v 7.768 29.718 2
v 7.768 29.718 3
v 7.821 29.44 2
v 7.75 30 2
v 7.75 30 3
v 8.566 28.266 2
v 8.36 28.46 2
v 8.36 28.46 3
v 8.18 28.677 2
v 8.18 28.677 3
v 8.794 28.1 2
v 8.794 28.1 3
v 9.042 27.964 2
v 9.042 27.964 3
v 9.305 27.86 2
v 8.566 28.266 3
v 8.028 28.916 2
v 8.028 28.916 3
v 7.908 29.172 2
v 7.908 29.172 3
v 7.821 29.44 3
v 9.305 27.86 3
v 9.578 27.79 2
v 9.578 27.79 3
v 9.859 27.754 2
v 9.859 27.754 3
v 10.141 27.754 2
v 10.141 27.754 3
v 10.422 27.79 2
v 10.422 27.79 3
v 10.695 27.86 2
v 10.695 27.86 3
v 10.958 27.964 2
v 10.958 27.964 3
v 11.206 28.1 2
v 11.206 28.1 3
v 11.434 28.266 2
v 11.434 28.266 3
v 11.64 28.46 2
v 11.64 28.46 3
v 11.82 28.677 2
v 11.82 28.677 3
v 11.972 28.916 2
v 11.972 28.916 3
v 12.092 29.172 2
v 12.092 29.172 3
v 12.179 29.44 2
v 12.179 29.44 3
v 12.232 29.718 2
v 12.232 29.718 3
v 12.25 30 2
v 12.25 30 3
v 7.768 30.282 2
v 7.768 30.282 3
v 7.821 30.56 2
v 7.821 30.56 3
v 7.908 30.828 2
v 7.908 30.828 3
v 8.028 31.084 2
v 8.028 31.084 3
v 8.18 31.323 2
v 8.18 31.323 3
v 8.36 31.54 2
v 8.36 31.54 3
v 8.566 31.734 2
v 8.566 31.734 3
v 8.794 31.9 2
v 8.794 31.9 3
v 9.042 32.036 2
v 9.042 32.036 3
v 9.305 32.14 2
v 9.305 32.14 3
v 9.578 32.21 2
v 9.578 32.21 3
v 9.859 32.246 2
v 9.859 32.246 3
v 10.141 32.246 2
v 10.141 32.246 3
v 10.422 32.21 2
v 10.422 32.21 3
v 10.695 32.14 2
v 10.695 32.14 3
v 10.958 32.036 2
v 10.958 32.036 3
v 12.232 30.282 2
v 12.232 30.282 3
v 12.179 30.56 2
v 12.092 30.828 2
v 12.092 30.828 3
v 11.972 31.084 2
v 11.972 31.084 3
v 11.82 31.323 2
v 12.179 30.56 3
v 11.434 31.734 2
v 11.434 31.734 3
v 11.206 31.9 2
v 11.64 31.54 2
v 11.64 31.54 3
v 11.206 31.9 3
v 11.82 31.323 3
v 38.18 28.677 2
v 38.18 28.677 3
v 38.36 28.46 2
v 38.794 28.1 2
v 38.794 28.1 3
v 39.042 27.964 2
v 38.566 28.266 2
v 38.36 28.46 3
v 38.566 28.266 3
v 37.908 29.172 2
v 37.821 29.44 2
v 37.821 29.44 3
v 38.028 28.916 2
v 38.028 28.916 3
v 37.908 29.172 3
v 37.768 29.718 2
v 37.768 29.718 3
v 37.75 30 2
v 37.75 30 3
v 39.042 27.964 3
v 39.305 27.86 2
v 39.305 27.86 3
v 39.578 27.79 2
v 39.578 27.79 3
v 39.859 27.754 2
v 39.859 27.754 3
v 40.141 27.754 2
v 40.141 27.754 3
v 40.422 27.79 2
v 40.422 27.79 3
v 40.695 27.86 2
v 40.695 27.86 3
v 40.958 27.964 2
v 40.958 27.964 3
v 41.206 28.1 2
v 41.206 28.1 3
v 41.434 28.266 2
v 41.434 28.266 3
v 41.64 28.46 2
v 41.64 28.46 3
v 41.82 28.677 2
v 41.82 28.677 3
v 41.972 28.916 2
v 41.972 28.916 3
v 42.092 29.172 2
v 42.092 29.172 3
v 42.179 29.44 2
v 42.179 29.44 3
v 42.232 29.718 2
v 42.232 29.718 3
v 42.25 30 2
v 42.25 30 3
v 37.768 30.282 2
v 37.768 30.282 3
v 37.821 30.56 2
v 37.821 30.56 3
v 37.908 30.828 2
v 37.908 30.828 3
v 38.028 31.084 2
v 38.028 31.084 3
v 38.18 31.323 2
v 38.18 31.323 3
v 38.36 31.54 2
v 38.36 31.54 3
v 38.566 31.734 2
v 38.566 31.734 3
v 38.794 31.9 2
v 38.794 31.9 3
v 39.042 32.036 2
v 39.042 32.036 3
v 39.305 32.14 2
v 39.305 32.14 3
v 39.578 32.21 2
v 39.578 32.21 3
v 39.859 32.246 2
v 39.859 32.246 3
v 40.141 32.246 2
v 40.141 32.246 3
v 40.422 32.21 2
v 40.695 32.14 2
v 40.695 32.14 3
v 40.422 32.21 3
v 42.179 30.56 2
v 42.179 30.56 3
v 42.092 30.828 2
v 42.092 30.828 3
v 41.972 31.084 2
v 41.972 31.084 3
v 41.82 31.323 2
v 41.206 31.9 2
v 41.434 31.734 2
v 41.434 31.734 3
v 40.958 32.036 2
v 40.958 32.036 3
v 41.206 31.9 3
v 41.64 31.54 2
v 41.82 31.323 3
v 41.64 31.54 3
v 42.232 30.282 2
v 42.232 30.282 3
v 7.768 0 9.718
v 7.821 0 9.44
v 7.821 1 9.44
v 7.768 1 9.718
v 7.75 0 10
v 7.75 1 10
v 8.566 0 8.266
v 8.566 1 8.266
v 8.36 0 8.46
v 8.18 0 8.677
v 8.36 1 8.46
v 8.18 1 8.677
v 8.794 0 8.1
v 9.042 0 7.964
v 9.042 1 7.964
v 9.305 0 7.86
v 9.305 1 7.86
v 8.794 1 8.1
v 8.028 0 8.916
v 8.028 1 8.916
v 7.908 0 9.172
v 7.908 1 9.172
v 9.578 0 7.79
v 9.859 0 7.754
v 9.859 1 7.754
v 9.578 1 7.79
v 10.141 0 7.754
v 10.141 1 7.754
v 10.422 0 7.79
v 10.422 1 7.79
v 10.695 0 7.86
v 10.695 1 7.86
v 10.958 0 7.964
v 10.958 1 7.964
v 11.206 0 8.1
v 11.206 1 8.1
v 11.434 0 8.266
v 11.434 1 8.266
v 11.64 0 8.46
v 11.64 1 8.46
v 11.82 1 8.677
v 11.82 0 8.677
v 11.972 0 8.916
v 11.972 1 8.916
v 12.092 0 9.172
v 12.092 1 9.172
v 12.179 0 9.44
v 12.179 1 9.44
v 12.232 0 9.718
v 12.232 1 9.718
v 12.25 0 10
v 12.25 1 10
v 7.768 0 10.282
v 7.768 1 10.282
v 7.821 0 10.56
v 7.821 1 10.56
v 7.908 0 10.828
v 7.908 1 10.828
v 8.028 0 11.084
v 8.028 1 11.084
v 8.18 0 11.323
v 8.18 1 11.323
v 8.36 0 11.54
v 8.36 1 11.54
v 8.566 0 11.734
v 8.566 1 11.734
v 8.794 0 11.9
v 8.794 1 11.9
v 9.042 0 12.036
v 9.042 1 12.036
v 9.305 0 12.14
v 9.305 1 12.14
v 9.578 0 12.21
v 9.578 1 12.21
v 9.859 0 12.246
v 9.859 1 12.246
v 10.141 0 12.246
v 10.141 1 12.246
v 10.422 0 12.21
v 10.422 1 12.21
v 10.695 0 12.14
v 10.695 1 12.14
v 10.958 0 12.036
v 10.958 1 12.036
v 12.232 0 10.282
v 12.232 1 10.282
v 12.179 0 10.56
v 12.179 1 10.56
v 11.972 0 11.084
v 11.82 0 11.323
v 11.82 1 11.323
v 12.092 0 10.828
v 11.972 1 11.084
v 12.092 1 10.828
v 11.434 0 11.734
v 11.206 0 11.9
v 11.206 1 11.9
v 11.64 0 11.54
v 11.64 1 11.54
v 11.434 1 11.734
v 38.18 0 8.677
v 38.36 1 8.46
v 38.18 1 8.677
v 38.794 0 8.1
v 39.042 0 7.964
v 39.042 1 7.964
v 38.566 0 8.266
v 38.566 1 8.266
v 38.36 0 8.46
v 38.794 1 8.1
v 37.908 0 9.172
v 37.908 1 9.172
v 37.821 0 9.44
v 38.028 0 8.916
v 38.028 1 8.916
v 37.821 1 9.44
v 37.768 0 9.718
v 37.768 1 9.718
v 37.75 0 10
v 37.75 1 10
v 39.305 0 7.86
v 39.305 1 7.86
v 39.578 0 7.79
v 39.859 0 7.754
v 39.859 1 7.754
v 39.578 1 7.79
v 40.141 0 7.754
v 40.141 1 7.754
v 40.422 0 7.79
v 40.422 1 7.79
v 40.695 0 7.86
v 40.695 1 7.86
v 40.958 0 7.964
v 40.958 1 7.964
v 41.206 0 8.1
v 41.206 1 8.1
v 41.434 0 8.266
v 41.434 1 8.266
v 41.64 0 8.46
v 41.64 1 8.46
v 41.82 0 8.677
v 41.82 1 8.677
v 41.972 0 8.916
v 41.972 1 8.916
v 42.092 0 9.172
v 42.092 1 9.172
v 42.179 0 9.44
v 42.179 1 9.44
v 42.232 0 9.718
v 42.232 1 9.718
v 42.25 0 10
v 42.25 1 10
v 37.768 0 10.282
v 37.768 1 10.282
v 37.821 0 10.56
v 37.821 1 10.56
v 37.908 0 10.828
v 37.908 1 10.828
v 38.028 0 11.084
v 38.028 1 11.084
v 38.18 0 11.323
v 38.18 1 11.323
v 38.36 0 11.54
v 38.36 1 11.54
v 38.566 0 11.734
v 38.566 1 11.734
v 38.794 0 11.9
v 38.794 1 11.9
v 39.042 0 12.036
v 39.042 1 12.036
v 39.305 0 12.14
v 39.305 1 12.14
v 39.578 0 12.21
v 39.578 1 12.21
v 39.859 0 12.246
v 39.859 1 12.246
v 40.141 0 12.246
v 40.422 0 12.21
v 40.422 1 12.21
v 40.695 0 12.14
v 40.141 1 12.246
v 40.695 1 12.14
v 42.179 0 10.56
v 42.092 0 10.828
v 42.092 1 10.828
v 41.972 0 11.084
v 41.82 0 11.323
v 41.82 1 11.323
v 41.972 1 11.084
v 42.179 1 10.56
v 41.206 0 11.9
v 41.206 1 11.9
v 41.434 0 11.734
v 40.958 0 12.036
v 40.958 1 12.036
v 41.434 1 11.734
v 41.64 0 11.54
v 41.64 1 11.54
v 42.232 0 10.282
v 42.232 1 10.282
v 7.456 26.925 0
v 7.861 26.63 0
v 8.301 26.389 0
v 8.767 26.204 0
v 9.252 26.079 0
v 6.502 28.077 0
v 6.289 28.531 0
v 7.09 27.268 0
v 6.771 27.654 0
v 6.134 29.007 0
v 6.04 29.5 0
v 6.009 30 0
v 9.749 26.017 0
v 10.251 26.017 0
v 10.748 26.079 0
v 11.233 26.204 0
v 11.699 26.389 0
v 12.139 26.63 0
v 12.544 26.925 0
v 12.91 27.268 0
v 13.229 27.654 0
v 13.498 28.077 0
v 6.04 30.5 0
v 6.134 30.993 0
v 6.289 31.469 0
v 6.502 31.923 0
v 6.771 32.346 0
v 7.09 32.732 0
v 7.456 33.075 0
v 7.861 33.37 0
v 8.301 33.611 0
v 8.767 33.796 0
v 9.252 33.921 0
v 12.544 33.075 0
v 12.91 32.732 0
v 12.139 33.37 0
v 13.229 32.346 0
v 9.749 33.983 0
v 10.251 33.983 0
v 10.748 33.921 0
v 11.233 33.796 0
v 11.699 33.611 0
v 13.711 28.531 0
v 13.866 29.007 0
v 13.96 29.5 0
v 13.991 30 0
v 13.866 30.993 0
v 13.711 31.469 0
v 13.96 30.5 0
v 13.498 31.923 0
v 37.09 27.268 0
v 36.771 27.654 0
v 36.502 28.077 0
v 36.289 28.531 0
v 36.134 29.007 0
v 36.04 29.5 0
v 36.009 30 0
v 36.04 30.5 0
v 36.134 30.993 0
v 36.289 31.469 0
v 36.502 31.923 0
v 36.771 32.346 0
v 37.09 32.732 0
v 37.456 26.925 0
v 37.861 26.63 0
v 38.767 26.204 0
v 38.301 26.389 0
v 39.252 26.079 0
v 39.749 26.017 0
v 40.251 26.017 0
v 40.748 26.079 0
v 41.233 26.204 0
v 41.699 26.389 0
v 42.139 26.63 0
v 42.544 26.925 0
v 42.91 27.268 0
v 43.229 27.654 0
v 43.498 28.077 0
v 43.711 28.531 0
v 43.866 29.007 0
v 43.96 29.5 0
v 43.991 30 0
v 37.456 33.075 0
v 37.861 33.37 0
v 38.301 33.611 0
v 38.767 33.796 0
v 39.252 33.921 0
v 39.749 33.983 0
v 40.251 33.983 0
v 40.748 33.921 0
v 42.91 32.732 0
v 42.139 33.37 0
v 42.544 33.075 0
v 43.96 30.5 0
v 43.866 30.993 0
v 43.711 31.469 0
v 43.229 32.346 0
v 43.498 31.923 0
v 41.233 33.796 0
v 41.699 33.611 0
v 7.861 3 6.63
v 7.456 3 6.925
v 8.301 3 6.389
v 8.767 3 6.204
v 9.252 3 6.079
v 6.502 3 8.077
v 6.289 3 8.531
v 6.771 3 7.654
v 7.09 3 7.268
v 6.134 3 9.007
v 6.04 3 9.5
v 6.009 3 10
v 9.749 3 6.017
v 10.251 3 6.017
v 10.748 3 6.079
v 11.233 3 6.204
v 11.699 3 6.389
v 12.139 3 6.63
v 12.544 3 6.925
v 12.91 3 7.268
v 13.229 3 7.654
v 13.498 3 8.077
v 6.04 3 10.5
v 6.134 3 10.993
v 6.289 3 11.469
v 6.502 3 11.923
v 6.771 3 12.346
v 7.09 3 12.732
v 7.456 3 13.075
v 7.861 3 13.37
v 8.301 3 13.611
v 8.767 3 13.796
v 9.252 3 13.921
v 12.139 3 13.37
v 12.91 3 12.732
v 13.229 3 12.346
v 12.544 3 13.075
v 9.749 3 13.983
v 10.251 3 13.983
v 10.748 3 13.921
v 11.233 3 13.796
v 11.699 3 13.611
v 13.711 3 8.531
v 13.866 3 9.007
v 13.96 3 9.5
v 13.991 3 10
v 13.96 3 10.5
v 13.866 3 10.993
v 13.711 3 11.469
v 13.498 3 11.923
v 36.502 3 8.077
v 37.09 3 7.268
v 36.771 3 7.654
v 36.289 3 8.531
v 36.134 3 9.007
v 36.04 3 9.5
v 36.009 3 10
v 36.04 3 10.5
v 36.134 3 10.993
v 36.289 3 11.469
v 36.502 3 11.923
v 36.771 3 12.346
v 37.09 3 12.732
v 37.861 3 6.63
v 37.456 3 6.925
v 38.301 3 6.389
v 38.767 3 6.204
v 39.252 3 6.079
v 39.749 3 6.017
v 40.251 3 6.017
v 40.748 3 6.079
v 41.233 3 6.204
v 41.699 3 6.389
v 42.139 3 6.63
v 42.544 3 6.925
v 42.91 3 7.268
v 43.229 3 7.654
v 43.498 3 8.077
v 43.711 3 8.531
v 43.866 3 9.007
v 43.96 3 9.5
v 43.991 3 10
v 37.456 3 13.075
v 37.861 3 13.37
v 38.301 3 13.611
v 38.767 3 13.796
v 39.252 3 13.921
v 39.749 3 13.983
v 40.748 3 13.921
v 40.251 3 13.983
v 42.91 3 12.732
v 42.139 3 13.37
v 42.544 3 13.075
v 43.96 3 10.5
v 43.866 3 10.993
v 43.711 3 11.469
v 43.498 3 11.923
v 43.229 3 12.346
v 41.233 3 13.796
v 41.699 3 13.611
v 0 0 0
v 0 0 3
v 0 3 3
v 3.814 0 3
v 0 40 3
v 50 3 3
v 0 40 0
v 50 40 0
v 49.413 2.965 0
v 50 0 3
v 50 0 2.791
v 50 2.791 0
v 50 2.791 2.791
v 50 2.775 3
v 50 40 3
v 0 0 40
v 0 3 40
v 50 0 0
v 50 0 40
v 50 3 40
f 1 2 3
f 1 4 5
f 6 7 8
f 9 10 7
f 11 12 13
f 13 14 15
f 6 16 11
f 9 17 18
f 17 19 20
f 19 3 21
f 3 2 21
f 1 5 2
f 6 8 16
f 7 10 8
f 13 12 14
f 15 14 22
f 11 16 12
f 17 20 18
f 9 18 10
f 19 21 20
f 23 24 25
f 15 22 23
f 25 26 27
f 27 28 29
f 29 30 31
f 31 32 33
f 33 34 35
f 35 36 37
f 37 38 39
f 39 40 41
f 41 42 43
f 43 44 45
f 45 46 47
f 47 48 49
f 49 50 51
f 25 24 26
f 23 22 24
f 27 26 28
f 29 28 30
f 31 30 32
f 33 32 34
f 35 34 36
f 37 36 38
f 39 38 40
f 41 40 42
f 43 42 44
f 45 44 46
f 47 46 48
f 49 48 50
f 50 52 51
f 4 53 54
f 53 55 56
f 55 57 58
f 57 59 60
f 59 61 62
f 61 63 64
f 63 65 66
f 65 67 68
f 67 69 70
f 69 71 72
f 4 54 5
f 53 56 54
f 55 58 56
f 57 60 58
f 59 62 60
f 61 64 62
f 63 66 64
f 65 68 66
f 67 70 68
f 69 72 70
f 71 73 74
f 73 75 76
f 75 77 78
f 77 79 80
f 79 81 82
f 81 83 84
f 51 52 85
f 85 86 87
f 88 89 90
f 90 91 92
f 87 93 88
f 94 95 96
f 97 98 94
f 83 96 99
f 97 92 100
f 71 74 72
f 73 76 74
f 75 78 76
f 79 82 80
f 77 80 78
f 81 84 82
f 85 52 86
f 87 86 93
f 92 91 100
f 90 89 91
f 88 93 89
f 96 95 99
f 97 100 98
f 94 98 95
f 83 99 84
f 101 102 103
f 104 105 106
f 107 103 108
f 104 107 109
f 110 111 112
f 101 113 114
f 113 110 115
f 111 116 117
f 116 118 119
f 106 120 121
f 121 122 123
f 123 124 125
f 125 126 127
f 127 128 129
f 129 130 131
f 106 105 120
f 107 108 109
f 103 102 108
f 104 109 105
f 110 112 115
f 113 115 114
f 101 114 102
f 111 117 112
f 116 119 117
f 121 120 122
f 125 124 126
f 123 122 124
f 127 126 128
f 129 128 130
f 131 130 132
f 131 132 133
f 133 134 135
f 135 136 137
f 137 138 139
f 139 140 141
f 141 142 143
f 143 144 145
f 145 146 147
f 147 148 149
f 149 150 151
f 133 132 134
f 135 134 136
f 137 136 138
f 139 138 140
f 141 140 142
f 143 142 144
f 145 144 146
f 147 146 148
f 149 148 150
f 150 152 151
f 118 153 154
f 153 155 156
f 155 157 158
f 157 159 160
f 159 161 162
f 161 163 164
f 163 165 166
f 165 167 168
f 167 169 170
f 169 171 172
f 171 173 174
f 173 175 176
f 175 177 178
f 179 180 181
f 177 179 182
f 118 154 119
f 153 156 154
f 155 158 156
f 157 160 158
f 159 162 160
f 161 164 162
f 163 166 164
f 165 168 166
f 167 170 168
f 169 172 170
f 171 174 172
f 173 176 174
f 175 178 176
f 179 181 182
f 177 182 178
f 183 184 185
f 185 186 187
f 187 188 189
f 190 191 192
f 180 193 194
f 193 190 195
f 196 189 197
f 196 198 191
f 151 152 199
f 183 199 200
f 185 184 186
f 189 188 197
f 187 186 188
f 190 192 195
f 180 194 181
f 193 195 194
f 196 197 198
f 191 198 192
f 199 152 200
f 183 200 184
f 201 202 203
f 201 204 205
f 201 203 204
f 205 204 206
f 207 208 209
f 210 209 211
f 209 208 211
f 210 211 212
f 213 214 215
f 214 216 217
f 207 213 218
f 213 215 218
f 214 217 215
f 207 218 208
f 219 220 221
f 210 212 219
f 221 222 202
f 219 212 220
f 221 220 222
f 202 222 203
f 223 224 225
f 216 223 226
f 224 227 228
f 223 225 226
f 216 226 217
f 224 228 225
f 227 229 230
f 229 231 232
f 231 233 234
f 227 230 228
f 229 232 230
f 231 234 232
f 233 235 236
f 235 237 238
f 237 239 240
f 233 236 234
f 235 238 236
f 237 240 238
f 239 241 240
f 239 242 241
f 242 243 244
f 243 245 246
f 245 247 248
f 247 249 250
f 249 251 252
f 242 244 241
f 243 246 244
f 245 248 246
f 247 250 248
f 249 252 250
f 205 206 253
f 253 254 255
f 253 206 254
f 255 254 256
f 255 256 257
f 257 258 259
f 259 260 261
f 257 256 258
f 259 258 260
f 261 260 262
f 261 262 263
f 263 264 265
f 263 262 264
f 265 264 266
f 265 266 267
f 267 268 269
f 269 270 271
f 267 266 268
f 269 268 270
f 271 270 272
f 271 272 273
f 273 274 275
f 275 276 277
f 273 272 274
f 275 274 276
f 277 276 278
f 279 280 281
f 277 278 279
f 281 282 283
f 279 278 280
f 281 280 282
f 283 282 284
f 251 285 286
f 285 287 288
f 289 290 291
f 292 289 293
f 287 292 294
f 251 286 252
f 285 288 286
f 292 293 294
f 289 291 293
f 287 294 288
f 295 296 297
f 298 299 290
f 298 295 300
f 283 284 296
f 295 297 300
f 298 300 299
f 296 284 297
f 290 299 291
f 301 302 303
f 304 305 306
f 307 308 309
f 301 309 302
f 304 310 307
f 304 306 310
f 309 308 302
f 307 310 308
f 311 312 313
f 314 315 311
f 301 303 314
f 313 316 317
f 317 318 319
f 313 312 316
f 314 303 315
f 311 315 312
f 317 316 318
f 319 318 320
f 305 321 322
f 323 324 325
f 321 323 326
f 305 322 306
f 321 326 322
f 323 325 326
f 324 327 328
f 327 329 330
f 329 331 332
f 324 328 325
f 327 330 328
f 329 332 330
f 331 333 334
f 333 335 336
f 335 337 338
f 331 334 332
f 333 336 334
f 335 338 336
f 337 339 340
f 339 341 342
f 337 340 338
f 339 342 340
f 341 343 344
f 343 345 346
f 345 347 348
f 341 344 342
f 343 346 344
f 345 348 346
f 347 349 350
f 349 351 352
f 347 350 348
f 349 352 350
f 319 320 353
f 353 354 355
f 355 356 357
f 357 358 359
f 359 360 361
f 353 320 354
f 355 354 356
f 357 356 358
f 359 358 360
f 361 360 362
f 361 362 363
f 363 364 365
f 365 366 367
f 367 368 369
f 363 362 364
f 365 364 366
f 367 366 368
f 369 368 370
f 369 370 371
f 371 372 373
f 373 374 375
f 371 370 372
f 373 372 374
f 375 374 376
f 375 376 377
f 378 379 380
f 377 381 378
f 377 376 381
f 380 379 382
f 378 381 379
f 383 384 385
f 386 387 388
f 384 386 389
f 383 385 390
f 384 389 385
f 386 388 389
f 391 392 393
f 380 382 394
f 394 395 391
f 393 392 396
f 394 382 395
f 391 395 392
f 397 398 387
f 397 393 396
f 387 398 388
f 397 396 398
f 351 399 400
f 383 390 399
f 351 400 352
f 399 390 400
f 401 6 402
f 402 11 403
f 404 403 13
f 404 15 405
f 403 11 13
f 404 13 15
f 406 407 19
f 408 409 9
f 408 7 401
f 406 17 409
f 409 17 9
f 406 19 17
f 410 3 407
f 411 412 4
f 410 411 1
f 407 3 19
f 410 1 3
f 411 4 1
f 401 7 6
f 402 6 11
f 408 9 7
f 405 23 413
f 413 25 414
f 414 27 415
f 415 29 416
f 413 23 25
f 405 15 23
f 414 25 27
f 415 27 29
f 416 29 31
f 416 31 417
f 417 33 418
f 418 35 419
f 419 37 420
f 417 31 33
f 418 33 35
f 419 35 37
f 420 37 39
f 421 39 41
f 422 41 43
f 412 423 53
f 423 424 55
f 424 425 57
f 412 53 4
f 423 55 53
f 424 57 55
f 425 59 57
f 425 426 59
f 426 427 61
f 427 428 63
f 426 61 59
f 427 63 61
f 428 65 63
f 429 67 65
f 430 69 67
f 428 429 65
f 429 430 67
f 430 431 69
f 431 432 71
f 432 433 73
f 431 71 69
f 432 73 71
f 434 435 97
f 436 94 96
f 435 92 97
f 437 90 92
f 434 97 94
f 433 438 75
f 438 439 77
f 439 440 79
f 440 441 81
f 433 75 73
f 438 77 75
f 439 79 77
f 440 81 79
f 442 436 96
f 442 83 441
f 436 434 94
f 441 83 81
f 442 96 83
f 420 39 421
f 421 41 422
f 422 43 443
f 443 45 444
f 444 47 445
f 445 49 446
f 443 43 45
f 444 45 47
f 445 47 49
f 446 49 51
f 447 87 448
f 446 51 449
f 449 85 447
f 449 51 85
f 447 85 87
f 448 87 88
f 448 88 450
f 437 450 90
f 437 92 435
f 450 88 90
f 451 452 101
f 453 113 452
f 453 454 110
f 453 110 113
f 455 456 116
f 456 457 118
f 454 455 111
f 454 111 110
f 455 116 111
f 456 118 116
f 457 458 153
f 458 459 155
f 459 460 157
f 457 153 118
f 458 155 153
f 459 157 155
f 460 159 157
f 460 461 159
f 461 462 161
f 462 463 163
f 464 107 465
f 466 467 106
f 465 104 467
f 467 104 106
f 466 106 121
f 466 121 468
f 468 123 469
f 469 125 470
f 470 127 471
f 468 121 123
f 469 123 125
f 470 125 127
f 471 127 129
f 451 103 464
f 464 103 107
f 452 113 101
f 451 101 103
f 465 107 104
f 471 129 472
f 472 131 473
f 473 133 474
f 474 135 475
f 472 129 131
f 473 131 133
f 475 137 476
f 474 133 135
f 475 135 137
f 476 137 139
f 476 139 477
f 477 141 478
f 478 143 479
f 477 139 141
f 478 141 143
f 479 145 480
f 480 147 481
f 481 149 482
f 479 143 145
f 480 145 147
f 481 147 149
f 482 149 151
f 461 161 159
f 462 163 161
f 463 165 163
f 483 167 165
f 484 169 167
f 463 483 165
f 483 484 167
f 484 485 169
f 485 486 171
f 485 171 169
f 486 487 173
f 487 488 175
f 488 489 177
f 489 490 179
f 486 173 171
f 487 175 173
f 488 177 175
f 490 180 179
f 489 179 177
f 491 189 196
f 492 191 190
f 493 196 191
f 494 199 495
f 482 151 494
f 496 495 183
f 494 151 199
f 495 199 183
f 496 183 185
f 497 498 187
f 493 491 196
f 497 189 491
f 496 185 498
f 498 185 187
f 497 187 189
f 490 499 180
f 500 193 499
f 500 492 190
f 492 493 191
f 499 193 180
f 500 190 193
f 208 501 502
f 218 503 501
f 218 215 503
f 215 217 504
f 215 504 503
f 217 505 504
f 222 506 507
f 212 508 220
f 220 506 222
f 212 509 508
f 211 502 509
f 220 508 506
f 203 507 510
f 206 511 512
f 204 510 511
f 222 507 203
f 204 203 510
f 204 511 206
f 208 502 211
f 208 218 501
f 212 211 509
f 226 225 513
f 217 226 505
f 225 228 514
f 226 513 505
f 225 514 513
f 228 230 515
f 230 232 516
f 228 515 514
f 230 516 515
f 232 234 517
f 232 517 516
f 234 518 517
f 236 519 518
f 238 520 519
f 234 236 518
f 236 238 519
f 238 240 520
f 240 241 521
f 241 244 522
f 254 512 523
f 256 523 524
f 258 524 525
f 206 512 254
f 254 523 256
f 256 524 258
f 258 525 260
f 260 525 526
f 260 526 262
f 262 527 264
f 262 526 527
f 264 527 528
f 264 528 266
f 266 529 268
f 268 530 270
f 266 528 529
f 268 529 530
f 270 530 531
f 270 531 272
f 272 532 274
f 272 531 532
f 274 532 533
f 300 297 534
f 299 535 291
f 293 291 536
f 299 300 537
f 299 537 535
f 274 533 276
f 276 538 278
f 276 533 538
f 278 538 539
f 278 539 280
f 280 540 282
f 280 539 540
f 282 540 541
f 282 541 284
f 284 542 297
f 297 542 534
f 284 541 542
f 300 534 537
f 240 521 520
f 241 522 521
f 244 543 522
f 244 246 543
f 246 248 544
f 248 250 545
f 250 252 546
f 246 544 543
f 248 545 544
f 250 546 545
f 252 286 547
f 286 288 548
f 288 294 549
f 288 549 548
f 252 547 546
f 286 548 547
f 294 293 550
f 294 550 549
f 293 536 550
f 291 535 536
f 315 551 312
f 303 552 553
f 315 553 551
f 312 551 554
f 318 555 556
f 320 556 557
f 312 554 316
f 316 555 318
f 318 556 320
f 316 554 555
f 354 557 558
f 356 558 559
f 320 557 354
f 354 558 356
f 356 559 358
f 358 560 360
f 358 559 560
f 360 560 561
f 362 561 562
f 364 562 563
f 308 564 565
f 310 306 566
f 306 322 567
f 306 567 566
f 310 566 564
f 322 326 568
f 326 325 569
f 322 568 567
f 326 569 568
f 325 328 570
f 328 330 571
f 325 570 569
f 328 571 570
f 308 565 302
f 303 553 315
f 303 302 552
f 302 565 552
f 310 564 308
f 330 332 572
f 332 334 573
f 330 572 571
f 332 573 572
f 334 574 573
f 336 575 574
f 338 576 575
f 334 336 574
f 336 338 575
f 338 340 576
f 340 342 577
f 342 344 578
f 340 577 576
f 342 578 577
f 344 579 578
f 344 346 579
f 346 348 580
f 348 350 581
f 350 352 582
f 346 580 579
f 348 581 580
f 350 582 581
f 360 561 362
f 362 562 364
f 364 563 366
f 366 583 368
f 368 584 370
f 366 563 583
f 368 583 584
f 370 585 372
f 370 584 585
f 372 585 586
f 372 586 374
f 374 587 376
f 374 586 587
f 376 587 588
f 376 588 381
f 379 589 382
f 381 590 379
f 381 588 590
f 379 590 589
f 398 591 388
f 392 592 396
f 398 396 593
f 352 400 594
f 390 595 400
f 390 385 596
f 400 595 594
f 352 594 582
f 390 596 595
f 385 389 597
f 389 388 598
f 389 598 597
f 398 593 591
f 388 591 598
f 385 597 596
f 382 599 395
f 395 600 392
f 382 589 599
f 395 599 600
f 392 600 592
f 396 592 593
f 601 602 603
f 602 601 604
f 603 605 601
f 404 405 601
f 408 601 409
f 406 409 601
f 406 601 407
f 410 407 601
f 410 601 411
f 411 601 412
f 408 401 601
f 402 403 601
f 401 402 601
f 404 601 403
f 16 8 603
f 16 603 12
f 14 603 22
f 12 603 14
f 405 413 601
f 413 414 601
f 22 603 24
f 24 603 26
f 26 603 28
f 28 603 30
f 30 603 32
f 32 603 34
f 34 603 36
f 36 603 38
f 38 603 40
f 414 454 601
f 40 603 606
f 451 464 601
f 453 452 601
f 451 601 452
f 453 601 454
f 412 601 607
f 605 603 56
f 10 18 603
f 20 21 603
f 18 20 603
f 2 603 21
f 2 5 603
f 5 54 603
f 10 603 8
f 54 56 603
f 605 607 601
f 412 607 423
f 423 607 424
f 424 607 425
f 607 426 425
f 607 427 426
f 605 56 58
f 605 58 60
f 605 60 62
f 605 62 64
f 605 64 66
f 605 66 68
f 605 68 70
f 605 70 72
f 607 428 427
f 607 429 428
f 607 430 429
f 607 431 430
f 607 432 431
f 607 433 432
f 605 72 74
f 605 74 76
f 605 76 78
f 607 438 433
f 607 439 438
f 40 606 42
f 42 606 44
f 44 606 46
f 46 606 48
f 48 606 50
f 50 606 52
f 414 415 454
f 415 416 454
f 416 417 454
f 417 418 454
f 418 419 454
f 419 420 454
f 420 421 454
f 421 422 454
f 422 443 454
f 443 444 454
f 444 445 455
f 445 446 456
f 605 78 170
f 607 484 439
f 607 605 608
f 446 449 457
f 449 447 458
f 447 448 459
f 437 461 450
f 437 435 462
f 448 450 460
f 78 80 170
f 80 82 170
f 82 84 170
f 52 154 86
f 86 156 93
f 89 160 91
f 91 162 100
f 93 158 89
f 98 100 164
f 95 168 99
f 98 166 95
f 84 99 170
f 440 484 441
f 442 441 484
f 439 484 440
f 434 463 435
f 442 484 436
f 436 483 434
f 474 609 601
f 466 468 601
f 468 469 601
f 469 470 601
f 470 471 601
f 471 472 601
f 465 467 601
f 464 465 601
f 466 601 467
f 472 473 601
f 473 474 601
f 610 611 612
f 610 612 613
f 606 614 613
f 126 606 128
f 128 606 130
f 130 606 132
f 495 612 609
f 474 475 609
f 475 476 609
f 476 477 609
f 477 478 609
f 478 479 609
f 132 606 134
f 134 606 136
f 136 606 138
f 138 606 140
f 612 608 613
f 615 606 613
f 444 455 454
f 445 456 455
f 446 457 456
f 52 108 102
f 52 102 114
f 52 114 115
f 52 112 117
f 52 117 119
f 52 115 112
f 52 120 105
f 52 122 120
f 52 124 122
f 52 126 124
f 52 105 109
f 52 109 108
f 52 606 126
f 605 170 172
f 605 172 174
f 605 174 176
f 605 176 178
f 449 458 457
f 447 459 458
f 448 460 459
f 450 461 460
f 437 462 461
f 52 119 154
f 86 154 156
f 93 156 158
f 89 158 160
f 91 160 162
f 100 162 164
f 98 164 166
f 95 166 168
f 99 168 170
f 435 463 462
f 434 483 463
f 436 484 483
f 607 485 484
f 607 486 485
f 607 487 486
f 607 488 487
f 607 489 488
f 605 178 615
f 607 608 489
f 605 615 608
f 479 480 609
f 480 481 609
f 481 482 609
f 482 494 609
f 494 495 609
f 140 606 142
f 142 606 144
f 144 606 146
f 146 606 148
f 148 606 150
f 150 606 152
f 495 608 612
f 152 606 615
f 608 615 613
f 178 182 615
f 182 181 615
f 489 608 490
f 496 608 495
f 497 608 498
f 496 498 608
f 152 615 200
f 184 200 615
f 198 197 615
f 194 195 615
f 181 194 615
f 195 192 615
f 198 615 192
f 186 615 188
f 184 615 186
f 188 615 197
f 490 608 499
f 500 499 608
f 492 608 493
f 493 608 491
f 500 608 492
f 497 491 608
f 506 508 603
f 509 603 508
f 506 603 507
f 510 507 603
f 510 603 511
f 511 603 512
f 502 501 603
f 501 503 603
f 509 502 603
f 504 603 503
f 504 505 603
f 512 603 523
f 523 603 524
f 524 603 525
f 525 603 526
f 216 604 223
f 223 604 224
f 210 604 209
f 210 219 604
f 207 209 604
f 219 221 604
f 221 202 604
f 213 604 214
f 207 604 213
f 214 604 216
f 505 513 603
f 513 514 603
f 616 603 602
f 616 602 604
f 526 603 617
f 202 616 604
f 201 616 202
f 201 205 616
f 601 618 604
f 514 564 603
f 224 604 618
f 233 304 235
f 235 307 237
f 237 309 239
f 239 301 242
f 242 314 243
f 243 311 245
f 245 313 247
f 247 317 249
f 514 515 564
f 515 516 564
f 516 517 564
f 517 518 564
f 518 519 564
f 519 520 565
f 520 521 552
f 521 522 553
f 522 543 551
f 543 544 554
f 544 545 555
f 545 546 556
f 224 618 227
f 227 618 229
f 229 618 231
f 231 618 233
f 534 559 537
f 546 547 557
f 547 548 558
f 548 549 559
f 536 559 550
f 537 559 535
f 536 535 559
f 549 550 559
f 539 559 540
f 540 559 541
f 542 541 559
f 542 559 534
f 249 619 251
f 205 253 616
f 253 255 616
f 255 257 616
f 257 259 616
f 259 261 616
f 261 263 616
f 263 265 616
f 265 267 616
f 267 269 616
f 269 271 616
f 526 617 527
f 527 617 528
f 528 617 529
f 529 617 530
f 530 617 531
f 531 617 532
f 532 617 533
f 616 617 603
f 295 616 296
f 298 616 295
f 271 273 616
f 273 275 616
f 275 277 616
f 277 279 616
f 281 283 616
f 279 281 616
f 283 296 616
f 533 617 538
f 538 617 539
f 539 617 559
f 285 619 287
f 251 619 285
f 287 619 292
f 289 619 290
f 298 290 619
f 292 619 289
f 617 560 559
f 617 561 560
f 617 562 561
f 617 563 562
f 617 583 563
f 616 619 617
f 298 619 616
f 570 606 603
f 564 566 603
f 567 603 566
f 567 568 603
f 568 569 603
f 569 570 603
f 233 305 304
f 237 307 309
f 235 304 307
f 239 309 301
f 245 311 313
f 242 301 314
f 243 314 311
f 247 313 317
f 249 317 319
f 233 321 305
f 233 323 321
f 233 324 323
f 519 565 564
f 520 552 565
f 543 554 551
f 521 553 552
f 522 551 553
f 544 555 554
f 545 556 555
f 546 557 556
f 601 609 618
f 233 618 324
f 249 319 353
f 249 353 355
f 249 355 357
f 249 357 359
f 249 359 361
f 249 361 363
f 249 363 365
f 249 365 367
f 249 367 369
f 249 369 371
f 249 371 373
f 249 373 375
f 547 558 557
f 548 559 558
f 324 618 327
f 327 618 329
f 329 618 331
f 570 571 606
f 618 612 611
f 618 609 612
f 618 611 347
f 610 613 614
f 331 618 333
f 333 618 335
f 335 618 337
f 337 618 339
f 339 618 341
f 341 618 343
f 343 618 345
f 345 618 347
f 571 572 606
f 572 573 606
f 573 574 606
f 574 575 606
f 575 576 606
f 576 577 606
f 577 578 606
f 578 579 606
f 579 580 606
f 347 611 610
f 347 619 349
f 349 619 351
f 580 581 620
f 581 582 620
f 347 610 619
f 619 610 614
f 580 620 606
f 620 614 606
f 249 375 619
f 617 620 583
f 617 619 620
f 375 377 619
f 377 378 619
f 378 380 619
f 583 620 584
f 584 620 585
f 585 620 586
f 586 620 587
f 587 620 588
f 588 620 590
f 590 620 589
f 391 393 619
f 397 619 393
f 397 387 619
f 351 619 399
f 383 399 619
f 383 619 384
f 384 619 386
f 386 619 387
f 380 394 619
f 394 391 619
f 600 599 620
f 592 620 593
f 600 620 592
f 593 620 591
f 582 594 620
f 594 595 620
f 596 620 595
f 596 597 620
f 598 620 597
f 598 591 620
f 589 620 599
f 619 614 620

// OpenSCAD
// L字金具 (L-bracket)
// 水平面: 50(幅X) x 40(奥行きY) x 3(厚みZ)
// 垂直面: 50(幅X) x 40(高さZ) x 3(厚みY)
// 内側コーナーが原点

width = 50;      // X方向の幅
depth = 40;      // 水平面の奥行き(Y)
height = 40;     // 垂直面の高さ(Z)
thickness = 3;   // 板厚

hole_dia = 4.5;      // 貫通穴径
csk_dia = 8;         // 皿座面径
csk_depth = 2;       // 皿座面深さ
edge_offset = 10;    // 縁から穴中心までの距離
hole_spacing = width - 2 * edge_offset; // 左右2穴の間隔

module countersunk_hole(depth_total) {
    // depth_total: 板厚全体を貫通させる長さ
    union() {
        // 貫通穴
        cylinder(h = depth_total * 2, d = hole_dia, center = true, $fn = 50);
        // 皿座面(円錐台) - 上端がcsk_dia, 下端がhole_dia
        translate([0, 0, depth_total/2 - csk_depth])
            cylinder(h = csk_depth + 0.01, d1 = hole_dia, d2 = csk_dia, $fn = 50);
    }
}

module horizontal_plate() {
    difference() {
        // 水平面: X: 0~50, Y: 0~40, Z: 0~3
        translate([0, 0, 0])
            cube([width, depth, thickness]);

        // 皿穴(外側=下面 Z=0 側に皿座面を向ける)
        for (x = [edge_offset, width - edge_offset]) {
            translate([x, depth - edge_offset, thickness/2])
                rotate([180, 0, 0])
                    countersunk_hole(thickness);
        }
    }
}

module vertical_plate() {
    difference() {
        // 垂直面: X: 0~50, Y: 0~3, Z: 0~40
        translate([0, 0, 0])
            cube([width, thickness, height]);

        // 皿穴(外側=手前面 Y=0 側に皿座面を向ける)
        for (x = [edge_offset, width - edge_offset]) {
            translate([x, thickness/2, edge_offset])
                rotate([-90, 0, 0])
                    countersunk_hole(thickness);
        }
    }
}

module l_bracket() {
    horizontal_plate();
    vertical_plate();
}

l_bracket();
